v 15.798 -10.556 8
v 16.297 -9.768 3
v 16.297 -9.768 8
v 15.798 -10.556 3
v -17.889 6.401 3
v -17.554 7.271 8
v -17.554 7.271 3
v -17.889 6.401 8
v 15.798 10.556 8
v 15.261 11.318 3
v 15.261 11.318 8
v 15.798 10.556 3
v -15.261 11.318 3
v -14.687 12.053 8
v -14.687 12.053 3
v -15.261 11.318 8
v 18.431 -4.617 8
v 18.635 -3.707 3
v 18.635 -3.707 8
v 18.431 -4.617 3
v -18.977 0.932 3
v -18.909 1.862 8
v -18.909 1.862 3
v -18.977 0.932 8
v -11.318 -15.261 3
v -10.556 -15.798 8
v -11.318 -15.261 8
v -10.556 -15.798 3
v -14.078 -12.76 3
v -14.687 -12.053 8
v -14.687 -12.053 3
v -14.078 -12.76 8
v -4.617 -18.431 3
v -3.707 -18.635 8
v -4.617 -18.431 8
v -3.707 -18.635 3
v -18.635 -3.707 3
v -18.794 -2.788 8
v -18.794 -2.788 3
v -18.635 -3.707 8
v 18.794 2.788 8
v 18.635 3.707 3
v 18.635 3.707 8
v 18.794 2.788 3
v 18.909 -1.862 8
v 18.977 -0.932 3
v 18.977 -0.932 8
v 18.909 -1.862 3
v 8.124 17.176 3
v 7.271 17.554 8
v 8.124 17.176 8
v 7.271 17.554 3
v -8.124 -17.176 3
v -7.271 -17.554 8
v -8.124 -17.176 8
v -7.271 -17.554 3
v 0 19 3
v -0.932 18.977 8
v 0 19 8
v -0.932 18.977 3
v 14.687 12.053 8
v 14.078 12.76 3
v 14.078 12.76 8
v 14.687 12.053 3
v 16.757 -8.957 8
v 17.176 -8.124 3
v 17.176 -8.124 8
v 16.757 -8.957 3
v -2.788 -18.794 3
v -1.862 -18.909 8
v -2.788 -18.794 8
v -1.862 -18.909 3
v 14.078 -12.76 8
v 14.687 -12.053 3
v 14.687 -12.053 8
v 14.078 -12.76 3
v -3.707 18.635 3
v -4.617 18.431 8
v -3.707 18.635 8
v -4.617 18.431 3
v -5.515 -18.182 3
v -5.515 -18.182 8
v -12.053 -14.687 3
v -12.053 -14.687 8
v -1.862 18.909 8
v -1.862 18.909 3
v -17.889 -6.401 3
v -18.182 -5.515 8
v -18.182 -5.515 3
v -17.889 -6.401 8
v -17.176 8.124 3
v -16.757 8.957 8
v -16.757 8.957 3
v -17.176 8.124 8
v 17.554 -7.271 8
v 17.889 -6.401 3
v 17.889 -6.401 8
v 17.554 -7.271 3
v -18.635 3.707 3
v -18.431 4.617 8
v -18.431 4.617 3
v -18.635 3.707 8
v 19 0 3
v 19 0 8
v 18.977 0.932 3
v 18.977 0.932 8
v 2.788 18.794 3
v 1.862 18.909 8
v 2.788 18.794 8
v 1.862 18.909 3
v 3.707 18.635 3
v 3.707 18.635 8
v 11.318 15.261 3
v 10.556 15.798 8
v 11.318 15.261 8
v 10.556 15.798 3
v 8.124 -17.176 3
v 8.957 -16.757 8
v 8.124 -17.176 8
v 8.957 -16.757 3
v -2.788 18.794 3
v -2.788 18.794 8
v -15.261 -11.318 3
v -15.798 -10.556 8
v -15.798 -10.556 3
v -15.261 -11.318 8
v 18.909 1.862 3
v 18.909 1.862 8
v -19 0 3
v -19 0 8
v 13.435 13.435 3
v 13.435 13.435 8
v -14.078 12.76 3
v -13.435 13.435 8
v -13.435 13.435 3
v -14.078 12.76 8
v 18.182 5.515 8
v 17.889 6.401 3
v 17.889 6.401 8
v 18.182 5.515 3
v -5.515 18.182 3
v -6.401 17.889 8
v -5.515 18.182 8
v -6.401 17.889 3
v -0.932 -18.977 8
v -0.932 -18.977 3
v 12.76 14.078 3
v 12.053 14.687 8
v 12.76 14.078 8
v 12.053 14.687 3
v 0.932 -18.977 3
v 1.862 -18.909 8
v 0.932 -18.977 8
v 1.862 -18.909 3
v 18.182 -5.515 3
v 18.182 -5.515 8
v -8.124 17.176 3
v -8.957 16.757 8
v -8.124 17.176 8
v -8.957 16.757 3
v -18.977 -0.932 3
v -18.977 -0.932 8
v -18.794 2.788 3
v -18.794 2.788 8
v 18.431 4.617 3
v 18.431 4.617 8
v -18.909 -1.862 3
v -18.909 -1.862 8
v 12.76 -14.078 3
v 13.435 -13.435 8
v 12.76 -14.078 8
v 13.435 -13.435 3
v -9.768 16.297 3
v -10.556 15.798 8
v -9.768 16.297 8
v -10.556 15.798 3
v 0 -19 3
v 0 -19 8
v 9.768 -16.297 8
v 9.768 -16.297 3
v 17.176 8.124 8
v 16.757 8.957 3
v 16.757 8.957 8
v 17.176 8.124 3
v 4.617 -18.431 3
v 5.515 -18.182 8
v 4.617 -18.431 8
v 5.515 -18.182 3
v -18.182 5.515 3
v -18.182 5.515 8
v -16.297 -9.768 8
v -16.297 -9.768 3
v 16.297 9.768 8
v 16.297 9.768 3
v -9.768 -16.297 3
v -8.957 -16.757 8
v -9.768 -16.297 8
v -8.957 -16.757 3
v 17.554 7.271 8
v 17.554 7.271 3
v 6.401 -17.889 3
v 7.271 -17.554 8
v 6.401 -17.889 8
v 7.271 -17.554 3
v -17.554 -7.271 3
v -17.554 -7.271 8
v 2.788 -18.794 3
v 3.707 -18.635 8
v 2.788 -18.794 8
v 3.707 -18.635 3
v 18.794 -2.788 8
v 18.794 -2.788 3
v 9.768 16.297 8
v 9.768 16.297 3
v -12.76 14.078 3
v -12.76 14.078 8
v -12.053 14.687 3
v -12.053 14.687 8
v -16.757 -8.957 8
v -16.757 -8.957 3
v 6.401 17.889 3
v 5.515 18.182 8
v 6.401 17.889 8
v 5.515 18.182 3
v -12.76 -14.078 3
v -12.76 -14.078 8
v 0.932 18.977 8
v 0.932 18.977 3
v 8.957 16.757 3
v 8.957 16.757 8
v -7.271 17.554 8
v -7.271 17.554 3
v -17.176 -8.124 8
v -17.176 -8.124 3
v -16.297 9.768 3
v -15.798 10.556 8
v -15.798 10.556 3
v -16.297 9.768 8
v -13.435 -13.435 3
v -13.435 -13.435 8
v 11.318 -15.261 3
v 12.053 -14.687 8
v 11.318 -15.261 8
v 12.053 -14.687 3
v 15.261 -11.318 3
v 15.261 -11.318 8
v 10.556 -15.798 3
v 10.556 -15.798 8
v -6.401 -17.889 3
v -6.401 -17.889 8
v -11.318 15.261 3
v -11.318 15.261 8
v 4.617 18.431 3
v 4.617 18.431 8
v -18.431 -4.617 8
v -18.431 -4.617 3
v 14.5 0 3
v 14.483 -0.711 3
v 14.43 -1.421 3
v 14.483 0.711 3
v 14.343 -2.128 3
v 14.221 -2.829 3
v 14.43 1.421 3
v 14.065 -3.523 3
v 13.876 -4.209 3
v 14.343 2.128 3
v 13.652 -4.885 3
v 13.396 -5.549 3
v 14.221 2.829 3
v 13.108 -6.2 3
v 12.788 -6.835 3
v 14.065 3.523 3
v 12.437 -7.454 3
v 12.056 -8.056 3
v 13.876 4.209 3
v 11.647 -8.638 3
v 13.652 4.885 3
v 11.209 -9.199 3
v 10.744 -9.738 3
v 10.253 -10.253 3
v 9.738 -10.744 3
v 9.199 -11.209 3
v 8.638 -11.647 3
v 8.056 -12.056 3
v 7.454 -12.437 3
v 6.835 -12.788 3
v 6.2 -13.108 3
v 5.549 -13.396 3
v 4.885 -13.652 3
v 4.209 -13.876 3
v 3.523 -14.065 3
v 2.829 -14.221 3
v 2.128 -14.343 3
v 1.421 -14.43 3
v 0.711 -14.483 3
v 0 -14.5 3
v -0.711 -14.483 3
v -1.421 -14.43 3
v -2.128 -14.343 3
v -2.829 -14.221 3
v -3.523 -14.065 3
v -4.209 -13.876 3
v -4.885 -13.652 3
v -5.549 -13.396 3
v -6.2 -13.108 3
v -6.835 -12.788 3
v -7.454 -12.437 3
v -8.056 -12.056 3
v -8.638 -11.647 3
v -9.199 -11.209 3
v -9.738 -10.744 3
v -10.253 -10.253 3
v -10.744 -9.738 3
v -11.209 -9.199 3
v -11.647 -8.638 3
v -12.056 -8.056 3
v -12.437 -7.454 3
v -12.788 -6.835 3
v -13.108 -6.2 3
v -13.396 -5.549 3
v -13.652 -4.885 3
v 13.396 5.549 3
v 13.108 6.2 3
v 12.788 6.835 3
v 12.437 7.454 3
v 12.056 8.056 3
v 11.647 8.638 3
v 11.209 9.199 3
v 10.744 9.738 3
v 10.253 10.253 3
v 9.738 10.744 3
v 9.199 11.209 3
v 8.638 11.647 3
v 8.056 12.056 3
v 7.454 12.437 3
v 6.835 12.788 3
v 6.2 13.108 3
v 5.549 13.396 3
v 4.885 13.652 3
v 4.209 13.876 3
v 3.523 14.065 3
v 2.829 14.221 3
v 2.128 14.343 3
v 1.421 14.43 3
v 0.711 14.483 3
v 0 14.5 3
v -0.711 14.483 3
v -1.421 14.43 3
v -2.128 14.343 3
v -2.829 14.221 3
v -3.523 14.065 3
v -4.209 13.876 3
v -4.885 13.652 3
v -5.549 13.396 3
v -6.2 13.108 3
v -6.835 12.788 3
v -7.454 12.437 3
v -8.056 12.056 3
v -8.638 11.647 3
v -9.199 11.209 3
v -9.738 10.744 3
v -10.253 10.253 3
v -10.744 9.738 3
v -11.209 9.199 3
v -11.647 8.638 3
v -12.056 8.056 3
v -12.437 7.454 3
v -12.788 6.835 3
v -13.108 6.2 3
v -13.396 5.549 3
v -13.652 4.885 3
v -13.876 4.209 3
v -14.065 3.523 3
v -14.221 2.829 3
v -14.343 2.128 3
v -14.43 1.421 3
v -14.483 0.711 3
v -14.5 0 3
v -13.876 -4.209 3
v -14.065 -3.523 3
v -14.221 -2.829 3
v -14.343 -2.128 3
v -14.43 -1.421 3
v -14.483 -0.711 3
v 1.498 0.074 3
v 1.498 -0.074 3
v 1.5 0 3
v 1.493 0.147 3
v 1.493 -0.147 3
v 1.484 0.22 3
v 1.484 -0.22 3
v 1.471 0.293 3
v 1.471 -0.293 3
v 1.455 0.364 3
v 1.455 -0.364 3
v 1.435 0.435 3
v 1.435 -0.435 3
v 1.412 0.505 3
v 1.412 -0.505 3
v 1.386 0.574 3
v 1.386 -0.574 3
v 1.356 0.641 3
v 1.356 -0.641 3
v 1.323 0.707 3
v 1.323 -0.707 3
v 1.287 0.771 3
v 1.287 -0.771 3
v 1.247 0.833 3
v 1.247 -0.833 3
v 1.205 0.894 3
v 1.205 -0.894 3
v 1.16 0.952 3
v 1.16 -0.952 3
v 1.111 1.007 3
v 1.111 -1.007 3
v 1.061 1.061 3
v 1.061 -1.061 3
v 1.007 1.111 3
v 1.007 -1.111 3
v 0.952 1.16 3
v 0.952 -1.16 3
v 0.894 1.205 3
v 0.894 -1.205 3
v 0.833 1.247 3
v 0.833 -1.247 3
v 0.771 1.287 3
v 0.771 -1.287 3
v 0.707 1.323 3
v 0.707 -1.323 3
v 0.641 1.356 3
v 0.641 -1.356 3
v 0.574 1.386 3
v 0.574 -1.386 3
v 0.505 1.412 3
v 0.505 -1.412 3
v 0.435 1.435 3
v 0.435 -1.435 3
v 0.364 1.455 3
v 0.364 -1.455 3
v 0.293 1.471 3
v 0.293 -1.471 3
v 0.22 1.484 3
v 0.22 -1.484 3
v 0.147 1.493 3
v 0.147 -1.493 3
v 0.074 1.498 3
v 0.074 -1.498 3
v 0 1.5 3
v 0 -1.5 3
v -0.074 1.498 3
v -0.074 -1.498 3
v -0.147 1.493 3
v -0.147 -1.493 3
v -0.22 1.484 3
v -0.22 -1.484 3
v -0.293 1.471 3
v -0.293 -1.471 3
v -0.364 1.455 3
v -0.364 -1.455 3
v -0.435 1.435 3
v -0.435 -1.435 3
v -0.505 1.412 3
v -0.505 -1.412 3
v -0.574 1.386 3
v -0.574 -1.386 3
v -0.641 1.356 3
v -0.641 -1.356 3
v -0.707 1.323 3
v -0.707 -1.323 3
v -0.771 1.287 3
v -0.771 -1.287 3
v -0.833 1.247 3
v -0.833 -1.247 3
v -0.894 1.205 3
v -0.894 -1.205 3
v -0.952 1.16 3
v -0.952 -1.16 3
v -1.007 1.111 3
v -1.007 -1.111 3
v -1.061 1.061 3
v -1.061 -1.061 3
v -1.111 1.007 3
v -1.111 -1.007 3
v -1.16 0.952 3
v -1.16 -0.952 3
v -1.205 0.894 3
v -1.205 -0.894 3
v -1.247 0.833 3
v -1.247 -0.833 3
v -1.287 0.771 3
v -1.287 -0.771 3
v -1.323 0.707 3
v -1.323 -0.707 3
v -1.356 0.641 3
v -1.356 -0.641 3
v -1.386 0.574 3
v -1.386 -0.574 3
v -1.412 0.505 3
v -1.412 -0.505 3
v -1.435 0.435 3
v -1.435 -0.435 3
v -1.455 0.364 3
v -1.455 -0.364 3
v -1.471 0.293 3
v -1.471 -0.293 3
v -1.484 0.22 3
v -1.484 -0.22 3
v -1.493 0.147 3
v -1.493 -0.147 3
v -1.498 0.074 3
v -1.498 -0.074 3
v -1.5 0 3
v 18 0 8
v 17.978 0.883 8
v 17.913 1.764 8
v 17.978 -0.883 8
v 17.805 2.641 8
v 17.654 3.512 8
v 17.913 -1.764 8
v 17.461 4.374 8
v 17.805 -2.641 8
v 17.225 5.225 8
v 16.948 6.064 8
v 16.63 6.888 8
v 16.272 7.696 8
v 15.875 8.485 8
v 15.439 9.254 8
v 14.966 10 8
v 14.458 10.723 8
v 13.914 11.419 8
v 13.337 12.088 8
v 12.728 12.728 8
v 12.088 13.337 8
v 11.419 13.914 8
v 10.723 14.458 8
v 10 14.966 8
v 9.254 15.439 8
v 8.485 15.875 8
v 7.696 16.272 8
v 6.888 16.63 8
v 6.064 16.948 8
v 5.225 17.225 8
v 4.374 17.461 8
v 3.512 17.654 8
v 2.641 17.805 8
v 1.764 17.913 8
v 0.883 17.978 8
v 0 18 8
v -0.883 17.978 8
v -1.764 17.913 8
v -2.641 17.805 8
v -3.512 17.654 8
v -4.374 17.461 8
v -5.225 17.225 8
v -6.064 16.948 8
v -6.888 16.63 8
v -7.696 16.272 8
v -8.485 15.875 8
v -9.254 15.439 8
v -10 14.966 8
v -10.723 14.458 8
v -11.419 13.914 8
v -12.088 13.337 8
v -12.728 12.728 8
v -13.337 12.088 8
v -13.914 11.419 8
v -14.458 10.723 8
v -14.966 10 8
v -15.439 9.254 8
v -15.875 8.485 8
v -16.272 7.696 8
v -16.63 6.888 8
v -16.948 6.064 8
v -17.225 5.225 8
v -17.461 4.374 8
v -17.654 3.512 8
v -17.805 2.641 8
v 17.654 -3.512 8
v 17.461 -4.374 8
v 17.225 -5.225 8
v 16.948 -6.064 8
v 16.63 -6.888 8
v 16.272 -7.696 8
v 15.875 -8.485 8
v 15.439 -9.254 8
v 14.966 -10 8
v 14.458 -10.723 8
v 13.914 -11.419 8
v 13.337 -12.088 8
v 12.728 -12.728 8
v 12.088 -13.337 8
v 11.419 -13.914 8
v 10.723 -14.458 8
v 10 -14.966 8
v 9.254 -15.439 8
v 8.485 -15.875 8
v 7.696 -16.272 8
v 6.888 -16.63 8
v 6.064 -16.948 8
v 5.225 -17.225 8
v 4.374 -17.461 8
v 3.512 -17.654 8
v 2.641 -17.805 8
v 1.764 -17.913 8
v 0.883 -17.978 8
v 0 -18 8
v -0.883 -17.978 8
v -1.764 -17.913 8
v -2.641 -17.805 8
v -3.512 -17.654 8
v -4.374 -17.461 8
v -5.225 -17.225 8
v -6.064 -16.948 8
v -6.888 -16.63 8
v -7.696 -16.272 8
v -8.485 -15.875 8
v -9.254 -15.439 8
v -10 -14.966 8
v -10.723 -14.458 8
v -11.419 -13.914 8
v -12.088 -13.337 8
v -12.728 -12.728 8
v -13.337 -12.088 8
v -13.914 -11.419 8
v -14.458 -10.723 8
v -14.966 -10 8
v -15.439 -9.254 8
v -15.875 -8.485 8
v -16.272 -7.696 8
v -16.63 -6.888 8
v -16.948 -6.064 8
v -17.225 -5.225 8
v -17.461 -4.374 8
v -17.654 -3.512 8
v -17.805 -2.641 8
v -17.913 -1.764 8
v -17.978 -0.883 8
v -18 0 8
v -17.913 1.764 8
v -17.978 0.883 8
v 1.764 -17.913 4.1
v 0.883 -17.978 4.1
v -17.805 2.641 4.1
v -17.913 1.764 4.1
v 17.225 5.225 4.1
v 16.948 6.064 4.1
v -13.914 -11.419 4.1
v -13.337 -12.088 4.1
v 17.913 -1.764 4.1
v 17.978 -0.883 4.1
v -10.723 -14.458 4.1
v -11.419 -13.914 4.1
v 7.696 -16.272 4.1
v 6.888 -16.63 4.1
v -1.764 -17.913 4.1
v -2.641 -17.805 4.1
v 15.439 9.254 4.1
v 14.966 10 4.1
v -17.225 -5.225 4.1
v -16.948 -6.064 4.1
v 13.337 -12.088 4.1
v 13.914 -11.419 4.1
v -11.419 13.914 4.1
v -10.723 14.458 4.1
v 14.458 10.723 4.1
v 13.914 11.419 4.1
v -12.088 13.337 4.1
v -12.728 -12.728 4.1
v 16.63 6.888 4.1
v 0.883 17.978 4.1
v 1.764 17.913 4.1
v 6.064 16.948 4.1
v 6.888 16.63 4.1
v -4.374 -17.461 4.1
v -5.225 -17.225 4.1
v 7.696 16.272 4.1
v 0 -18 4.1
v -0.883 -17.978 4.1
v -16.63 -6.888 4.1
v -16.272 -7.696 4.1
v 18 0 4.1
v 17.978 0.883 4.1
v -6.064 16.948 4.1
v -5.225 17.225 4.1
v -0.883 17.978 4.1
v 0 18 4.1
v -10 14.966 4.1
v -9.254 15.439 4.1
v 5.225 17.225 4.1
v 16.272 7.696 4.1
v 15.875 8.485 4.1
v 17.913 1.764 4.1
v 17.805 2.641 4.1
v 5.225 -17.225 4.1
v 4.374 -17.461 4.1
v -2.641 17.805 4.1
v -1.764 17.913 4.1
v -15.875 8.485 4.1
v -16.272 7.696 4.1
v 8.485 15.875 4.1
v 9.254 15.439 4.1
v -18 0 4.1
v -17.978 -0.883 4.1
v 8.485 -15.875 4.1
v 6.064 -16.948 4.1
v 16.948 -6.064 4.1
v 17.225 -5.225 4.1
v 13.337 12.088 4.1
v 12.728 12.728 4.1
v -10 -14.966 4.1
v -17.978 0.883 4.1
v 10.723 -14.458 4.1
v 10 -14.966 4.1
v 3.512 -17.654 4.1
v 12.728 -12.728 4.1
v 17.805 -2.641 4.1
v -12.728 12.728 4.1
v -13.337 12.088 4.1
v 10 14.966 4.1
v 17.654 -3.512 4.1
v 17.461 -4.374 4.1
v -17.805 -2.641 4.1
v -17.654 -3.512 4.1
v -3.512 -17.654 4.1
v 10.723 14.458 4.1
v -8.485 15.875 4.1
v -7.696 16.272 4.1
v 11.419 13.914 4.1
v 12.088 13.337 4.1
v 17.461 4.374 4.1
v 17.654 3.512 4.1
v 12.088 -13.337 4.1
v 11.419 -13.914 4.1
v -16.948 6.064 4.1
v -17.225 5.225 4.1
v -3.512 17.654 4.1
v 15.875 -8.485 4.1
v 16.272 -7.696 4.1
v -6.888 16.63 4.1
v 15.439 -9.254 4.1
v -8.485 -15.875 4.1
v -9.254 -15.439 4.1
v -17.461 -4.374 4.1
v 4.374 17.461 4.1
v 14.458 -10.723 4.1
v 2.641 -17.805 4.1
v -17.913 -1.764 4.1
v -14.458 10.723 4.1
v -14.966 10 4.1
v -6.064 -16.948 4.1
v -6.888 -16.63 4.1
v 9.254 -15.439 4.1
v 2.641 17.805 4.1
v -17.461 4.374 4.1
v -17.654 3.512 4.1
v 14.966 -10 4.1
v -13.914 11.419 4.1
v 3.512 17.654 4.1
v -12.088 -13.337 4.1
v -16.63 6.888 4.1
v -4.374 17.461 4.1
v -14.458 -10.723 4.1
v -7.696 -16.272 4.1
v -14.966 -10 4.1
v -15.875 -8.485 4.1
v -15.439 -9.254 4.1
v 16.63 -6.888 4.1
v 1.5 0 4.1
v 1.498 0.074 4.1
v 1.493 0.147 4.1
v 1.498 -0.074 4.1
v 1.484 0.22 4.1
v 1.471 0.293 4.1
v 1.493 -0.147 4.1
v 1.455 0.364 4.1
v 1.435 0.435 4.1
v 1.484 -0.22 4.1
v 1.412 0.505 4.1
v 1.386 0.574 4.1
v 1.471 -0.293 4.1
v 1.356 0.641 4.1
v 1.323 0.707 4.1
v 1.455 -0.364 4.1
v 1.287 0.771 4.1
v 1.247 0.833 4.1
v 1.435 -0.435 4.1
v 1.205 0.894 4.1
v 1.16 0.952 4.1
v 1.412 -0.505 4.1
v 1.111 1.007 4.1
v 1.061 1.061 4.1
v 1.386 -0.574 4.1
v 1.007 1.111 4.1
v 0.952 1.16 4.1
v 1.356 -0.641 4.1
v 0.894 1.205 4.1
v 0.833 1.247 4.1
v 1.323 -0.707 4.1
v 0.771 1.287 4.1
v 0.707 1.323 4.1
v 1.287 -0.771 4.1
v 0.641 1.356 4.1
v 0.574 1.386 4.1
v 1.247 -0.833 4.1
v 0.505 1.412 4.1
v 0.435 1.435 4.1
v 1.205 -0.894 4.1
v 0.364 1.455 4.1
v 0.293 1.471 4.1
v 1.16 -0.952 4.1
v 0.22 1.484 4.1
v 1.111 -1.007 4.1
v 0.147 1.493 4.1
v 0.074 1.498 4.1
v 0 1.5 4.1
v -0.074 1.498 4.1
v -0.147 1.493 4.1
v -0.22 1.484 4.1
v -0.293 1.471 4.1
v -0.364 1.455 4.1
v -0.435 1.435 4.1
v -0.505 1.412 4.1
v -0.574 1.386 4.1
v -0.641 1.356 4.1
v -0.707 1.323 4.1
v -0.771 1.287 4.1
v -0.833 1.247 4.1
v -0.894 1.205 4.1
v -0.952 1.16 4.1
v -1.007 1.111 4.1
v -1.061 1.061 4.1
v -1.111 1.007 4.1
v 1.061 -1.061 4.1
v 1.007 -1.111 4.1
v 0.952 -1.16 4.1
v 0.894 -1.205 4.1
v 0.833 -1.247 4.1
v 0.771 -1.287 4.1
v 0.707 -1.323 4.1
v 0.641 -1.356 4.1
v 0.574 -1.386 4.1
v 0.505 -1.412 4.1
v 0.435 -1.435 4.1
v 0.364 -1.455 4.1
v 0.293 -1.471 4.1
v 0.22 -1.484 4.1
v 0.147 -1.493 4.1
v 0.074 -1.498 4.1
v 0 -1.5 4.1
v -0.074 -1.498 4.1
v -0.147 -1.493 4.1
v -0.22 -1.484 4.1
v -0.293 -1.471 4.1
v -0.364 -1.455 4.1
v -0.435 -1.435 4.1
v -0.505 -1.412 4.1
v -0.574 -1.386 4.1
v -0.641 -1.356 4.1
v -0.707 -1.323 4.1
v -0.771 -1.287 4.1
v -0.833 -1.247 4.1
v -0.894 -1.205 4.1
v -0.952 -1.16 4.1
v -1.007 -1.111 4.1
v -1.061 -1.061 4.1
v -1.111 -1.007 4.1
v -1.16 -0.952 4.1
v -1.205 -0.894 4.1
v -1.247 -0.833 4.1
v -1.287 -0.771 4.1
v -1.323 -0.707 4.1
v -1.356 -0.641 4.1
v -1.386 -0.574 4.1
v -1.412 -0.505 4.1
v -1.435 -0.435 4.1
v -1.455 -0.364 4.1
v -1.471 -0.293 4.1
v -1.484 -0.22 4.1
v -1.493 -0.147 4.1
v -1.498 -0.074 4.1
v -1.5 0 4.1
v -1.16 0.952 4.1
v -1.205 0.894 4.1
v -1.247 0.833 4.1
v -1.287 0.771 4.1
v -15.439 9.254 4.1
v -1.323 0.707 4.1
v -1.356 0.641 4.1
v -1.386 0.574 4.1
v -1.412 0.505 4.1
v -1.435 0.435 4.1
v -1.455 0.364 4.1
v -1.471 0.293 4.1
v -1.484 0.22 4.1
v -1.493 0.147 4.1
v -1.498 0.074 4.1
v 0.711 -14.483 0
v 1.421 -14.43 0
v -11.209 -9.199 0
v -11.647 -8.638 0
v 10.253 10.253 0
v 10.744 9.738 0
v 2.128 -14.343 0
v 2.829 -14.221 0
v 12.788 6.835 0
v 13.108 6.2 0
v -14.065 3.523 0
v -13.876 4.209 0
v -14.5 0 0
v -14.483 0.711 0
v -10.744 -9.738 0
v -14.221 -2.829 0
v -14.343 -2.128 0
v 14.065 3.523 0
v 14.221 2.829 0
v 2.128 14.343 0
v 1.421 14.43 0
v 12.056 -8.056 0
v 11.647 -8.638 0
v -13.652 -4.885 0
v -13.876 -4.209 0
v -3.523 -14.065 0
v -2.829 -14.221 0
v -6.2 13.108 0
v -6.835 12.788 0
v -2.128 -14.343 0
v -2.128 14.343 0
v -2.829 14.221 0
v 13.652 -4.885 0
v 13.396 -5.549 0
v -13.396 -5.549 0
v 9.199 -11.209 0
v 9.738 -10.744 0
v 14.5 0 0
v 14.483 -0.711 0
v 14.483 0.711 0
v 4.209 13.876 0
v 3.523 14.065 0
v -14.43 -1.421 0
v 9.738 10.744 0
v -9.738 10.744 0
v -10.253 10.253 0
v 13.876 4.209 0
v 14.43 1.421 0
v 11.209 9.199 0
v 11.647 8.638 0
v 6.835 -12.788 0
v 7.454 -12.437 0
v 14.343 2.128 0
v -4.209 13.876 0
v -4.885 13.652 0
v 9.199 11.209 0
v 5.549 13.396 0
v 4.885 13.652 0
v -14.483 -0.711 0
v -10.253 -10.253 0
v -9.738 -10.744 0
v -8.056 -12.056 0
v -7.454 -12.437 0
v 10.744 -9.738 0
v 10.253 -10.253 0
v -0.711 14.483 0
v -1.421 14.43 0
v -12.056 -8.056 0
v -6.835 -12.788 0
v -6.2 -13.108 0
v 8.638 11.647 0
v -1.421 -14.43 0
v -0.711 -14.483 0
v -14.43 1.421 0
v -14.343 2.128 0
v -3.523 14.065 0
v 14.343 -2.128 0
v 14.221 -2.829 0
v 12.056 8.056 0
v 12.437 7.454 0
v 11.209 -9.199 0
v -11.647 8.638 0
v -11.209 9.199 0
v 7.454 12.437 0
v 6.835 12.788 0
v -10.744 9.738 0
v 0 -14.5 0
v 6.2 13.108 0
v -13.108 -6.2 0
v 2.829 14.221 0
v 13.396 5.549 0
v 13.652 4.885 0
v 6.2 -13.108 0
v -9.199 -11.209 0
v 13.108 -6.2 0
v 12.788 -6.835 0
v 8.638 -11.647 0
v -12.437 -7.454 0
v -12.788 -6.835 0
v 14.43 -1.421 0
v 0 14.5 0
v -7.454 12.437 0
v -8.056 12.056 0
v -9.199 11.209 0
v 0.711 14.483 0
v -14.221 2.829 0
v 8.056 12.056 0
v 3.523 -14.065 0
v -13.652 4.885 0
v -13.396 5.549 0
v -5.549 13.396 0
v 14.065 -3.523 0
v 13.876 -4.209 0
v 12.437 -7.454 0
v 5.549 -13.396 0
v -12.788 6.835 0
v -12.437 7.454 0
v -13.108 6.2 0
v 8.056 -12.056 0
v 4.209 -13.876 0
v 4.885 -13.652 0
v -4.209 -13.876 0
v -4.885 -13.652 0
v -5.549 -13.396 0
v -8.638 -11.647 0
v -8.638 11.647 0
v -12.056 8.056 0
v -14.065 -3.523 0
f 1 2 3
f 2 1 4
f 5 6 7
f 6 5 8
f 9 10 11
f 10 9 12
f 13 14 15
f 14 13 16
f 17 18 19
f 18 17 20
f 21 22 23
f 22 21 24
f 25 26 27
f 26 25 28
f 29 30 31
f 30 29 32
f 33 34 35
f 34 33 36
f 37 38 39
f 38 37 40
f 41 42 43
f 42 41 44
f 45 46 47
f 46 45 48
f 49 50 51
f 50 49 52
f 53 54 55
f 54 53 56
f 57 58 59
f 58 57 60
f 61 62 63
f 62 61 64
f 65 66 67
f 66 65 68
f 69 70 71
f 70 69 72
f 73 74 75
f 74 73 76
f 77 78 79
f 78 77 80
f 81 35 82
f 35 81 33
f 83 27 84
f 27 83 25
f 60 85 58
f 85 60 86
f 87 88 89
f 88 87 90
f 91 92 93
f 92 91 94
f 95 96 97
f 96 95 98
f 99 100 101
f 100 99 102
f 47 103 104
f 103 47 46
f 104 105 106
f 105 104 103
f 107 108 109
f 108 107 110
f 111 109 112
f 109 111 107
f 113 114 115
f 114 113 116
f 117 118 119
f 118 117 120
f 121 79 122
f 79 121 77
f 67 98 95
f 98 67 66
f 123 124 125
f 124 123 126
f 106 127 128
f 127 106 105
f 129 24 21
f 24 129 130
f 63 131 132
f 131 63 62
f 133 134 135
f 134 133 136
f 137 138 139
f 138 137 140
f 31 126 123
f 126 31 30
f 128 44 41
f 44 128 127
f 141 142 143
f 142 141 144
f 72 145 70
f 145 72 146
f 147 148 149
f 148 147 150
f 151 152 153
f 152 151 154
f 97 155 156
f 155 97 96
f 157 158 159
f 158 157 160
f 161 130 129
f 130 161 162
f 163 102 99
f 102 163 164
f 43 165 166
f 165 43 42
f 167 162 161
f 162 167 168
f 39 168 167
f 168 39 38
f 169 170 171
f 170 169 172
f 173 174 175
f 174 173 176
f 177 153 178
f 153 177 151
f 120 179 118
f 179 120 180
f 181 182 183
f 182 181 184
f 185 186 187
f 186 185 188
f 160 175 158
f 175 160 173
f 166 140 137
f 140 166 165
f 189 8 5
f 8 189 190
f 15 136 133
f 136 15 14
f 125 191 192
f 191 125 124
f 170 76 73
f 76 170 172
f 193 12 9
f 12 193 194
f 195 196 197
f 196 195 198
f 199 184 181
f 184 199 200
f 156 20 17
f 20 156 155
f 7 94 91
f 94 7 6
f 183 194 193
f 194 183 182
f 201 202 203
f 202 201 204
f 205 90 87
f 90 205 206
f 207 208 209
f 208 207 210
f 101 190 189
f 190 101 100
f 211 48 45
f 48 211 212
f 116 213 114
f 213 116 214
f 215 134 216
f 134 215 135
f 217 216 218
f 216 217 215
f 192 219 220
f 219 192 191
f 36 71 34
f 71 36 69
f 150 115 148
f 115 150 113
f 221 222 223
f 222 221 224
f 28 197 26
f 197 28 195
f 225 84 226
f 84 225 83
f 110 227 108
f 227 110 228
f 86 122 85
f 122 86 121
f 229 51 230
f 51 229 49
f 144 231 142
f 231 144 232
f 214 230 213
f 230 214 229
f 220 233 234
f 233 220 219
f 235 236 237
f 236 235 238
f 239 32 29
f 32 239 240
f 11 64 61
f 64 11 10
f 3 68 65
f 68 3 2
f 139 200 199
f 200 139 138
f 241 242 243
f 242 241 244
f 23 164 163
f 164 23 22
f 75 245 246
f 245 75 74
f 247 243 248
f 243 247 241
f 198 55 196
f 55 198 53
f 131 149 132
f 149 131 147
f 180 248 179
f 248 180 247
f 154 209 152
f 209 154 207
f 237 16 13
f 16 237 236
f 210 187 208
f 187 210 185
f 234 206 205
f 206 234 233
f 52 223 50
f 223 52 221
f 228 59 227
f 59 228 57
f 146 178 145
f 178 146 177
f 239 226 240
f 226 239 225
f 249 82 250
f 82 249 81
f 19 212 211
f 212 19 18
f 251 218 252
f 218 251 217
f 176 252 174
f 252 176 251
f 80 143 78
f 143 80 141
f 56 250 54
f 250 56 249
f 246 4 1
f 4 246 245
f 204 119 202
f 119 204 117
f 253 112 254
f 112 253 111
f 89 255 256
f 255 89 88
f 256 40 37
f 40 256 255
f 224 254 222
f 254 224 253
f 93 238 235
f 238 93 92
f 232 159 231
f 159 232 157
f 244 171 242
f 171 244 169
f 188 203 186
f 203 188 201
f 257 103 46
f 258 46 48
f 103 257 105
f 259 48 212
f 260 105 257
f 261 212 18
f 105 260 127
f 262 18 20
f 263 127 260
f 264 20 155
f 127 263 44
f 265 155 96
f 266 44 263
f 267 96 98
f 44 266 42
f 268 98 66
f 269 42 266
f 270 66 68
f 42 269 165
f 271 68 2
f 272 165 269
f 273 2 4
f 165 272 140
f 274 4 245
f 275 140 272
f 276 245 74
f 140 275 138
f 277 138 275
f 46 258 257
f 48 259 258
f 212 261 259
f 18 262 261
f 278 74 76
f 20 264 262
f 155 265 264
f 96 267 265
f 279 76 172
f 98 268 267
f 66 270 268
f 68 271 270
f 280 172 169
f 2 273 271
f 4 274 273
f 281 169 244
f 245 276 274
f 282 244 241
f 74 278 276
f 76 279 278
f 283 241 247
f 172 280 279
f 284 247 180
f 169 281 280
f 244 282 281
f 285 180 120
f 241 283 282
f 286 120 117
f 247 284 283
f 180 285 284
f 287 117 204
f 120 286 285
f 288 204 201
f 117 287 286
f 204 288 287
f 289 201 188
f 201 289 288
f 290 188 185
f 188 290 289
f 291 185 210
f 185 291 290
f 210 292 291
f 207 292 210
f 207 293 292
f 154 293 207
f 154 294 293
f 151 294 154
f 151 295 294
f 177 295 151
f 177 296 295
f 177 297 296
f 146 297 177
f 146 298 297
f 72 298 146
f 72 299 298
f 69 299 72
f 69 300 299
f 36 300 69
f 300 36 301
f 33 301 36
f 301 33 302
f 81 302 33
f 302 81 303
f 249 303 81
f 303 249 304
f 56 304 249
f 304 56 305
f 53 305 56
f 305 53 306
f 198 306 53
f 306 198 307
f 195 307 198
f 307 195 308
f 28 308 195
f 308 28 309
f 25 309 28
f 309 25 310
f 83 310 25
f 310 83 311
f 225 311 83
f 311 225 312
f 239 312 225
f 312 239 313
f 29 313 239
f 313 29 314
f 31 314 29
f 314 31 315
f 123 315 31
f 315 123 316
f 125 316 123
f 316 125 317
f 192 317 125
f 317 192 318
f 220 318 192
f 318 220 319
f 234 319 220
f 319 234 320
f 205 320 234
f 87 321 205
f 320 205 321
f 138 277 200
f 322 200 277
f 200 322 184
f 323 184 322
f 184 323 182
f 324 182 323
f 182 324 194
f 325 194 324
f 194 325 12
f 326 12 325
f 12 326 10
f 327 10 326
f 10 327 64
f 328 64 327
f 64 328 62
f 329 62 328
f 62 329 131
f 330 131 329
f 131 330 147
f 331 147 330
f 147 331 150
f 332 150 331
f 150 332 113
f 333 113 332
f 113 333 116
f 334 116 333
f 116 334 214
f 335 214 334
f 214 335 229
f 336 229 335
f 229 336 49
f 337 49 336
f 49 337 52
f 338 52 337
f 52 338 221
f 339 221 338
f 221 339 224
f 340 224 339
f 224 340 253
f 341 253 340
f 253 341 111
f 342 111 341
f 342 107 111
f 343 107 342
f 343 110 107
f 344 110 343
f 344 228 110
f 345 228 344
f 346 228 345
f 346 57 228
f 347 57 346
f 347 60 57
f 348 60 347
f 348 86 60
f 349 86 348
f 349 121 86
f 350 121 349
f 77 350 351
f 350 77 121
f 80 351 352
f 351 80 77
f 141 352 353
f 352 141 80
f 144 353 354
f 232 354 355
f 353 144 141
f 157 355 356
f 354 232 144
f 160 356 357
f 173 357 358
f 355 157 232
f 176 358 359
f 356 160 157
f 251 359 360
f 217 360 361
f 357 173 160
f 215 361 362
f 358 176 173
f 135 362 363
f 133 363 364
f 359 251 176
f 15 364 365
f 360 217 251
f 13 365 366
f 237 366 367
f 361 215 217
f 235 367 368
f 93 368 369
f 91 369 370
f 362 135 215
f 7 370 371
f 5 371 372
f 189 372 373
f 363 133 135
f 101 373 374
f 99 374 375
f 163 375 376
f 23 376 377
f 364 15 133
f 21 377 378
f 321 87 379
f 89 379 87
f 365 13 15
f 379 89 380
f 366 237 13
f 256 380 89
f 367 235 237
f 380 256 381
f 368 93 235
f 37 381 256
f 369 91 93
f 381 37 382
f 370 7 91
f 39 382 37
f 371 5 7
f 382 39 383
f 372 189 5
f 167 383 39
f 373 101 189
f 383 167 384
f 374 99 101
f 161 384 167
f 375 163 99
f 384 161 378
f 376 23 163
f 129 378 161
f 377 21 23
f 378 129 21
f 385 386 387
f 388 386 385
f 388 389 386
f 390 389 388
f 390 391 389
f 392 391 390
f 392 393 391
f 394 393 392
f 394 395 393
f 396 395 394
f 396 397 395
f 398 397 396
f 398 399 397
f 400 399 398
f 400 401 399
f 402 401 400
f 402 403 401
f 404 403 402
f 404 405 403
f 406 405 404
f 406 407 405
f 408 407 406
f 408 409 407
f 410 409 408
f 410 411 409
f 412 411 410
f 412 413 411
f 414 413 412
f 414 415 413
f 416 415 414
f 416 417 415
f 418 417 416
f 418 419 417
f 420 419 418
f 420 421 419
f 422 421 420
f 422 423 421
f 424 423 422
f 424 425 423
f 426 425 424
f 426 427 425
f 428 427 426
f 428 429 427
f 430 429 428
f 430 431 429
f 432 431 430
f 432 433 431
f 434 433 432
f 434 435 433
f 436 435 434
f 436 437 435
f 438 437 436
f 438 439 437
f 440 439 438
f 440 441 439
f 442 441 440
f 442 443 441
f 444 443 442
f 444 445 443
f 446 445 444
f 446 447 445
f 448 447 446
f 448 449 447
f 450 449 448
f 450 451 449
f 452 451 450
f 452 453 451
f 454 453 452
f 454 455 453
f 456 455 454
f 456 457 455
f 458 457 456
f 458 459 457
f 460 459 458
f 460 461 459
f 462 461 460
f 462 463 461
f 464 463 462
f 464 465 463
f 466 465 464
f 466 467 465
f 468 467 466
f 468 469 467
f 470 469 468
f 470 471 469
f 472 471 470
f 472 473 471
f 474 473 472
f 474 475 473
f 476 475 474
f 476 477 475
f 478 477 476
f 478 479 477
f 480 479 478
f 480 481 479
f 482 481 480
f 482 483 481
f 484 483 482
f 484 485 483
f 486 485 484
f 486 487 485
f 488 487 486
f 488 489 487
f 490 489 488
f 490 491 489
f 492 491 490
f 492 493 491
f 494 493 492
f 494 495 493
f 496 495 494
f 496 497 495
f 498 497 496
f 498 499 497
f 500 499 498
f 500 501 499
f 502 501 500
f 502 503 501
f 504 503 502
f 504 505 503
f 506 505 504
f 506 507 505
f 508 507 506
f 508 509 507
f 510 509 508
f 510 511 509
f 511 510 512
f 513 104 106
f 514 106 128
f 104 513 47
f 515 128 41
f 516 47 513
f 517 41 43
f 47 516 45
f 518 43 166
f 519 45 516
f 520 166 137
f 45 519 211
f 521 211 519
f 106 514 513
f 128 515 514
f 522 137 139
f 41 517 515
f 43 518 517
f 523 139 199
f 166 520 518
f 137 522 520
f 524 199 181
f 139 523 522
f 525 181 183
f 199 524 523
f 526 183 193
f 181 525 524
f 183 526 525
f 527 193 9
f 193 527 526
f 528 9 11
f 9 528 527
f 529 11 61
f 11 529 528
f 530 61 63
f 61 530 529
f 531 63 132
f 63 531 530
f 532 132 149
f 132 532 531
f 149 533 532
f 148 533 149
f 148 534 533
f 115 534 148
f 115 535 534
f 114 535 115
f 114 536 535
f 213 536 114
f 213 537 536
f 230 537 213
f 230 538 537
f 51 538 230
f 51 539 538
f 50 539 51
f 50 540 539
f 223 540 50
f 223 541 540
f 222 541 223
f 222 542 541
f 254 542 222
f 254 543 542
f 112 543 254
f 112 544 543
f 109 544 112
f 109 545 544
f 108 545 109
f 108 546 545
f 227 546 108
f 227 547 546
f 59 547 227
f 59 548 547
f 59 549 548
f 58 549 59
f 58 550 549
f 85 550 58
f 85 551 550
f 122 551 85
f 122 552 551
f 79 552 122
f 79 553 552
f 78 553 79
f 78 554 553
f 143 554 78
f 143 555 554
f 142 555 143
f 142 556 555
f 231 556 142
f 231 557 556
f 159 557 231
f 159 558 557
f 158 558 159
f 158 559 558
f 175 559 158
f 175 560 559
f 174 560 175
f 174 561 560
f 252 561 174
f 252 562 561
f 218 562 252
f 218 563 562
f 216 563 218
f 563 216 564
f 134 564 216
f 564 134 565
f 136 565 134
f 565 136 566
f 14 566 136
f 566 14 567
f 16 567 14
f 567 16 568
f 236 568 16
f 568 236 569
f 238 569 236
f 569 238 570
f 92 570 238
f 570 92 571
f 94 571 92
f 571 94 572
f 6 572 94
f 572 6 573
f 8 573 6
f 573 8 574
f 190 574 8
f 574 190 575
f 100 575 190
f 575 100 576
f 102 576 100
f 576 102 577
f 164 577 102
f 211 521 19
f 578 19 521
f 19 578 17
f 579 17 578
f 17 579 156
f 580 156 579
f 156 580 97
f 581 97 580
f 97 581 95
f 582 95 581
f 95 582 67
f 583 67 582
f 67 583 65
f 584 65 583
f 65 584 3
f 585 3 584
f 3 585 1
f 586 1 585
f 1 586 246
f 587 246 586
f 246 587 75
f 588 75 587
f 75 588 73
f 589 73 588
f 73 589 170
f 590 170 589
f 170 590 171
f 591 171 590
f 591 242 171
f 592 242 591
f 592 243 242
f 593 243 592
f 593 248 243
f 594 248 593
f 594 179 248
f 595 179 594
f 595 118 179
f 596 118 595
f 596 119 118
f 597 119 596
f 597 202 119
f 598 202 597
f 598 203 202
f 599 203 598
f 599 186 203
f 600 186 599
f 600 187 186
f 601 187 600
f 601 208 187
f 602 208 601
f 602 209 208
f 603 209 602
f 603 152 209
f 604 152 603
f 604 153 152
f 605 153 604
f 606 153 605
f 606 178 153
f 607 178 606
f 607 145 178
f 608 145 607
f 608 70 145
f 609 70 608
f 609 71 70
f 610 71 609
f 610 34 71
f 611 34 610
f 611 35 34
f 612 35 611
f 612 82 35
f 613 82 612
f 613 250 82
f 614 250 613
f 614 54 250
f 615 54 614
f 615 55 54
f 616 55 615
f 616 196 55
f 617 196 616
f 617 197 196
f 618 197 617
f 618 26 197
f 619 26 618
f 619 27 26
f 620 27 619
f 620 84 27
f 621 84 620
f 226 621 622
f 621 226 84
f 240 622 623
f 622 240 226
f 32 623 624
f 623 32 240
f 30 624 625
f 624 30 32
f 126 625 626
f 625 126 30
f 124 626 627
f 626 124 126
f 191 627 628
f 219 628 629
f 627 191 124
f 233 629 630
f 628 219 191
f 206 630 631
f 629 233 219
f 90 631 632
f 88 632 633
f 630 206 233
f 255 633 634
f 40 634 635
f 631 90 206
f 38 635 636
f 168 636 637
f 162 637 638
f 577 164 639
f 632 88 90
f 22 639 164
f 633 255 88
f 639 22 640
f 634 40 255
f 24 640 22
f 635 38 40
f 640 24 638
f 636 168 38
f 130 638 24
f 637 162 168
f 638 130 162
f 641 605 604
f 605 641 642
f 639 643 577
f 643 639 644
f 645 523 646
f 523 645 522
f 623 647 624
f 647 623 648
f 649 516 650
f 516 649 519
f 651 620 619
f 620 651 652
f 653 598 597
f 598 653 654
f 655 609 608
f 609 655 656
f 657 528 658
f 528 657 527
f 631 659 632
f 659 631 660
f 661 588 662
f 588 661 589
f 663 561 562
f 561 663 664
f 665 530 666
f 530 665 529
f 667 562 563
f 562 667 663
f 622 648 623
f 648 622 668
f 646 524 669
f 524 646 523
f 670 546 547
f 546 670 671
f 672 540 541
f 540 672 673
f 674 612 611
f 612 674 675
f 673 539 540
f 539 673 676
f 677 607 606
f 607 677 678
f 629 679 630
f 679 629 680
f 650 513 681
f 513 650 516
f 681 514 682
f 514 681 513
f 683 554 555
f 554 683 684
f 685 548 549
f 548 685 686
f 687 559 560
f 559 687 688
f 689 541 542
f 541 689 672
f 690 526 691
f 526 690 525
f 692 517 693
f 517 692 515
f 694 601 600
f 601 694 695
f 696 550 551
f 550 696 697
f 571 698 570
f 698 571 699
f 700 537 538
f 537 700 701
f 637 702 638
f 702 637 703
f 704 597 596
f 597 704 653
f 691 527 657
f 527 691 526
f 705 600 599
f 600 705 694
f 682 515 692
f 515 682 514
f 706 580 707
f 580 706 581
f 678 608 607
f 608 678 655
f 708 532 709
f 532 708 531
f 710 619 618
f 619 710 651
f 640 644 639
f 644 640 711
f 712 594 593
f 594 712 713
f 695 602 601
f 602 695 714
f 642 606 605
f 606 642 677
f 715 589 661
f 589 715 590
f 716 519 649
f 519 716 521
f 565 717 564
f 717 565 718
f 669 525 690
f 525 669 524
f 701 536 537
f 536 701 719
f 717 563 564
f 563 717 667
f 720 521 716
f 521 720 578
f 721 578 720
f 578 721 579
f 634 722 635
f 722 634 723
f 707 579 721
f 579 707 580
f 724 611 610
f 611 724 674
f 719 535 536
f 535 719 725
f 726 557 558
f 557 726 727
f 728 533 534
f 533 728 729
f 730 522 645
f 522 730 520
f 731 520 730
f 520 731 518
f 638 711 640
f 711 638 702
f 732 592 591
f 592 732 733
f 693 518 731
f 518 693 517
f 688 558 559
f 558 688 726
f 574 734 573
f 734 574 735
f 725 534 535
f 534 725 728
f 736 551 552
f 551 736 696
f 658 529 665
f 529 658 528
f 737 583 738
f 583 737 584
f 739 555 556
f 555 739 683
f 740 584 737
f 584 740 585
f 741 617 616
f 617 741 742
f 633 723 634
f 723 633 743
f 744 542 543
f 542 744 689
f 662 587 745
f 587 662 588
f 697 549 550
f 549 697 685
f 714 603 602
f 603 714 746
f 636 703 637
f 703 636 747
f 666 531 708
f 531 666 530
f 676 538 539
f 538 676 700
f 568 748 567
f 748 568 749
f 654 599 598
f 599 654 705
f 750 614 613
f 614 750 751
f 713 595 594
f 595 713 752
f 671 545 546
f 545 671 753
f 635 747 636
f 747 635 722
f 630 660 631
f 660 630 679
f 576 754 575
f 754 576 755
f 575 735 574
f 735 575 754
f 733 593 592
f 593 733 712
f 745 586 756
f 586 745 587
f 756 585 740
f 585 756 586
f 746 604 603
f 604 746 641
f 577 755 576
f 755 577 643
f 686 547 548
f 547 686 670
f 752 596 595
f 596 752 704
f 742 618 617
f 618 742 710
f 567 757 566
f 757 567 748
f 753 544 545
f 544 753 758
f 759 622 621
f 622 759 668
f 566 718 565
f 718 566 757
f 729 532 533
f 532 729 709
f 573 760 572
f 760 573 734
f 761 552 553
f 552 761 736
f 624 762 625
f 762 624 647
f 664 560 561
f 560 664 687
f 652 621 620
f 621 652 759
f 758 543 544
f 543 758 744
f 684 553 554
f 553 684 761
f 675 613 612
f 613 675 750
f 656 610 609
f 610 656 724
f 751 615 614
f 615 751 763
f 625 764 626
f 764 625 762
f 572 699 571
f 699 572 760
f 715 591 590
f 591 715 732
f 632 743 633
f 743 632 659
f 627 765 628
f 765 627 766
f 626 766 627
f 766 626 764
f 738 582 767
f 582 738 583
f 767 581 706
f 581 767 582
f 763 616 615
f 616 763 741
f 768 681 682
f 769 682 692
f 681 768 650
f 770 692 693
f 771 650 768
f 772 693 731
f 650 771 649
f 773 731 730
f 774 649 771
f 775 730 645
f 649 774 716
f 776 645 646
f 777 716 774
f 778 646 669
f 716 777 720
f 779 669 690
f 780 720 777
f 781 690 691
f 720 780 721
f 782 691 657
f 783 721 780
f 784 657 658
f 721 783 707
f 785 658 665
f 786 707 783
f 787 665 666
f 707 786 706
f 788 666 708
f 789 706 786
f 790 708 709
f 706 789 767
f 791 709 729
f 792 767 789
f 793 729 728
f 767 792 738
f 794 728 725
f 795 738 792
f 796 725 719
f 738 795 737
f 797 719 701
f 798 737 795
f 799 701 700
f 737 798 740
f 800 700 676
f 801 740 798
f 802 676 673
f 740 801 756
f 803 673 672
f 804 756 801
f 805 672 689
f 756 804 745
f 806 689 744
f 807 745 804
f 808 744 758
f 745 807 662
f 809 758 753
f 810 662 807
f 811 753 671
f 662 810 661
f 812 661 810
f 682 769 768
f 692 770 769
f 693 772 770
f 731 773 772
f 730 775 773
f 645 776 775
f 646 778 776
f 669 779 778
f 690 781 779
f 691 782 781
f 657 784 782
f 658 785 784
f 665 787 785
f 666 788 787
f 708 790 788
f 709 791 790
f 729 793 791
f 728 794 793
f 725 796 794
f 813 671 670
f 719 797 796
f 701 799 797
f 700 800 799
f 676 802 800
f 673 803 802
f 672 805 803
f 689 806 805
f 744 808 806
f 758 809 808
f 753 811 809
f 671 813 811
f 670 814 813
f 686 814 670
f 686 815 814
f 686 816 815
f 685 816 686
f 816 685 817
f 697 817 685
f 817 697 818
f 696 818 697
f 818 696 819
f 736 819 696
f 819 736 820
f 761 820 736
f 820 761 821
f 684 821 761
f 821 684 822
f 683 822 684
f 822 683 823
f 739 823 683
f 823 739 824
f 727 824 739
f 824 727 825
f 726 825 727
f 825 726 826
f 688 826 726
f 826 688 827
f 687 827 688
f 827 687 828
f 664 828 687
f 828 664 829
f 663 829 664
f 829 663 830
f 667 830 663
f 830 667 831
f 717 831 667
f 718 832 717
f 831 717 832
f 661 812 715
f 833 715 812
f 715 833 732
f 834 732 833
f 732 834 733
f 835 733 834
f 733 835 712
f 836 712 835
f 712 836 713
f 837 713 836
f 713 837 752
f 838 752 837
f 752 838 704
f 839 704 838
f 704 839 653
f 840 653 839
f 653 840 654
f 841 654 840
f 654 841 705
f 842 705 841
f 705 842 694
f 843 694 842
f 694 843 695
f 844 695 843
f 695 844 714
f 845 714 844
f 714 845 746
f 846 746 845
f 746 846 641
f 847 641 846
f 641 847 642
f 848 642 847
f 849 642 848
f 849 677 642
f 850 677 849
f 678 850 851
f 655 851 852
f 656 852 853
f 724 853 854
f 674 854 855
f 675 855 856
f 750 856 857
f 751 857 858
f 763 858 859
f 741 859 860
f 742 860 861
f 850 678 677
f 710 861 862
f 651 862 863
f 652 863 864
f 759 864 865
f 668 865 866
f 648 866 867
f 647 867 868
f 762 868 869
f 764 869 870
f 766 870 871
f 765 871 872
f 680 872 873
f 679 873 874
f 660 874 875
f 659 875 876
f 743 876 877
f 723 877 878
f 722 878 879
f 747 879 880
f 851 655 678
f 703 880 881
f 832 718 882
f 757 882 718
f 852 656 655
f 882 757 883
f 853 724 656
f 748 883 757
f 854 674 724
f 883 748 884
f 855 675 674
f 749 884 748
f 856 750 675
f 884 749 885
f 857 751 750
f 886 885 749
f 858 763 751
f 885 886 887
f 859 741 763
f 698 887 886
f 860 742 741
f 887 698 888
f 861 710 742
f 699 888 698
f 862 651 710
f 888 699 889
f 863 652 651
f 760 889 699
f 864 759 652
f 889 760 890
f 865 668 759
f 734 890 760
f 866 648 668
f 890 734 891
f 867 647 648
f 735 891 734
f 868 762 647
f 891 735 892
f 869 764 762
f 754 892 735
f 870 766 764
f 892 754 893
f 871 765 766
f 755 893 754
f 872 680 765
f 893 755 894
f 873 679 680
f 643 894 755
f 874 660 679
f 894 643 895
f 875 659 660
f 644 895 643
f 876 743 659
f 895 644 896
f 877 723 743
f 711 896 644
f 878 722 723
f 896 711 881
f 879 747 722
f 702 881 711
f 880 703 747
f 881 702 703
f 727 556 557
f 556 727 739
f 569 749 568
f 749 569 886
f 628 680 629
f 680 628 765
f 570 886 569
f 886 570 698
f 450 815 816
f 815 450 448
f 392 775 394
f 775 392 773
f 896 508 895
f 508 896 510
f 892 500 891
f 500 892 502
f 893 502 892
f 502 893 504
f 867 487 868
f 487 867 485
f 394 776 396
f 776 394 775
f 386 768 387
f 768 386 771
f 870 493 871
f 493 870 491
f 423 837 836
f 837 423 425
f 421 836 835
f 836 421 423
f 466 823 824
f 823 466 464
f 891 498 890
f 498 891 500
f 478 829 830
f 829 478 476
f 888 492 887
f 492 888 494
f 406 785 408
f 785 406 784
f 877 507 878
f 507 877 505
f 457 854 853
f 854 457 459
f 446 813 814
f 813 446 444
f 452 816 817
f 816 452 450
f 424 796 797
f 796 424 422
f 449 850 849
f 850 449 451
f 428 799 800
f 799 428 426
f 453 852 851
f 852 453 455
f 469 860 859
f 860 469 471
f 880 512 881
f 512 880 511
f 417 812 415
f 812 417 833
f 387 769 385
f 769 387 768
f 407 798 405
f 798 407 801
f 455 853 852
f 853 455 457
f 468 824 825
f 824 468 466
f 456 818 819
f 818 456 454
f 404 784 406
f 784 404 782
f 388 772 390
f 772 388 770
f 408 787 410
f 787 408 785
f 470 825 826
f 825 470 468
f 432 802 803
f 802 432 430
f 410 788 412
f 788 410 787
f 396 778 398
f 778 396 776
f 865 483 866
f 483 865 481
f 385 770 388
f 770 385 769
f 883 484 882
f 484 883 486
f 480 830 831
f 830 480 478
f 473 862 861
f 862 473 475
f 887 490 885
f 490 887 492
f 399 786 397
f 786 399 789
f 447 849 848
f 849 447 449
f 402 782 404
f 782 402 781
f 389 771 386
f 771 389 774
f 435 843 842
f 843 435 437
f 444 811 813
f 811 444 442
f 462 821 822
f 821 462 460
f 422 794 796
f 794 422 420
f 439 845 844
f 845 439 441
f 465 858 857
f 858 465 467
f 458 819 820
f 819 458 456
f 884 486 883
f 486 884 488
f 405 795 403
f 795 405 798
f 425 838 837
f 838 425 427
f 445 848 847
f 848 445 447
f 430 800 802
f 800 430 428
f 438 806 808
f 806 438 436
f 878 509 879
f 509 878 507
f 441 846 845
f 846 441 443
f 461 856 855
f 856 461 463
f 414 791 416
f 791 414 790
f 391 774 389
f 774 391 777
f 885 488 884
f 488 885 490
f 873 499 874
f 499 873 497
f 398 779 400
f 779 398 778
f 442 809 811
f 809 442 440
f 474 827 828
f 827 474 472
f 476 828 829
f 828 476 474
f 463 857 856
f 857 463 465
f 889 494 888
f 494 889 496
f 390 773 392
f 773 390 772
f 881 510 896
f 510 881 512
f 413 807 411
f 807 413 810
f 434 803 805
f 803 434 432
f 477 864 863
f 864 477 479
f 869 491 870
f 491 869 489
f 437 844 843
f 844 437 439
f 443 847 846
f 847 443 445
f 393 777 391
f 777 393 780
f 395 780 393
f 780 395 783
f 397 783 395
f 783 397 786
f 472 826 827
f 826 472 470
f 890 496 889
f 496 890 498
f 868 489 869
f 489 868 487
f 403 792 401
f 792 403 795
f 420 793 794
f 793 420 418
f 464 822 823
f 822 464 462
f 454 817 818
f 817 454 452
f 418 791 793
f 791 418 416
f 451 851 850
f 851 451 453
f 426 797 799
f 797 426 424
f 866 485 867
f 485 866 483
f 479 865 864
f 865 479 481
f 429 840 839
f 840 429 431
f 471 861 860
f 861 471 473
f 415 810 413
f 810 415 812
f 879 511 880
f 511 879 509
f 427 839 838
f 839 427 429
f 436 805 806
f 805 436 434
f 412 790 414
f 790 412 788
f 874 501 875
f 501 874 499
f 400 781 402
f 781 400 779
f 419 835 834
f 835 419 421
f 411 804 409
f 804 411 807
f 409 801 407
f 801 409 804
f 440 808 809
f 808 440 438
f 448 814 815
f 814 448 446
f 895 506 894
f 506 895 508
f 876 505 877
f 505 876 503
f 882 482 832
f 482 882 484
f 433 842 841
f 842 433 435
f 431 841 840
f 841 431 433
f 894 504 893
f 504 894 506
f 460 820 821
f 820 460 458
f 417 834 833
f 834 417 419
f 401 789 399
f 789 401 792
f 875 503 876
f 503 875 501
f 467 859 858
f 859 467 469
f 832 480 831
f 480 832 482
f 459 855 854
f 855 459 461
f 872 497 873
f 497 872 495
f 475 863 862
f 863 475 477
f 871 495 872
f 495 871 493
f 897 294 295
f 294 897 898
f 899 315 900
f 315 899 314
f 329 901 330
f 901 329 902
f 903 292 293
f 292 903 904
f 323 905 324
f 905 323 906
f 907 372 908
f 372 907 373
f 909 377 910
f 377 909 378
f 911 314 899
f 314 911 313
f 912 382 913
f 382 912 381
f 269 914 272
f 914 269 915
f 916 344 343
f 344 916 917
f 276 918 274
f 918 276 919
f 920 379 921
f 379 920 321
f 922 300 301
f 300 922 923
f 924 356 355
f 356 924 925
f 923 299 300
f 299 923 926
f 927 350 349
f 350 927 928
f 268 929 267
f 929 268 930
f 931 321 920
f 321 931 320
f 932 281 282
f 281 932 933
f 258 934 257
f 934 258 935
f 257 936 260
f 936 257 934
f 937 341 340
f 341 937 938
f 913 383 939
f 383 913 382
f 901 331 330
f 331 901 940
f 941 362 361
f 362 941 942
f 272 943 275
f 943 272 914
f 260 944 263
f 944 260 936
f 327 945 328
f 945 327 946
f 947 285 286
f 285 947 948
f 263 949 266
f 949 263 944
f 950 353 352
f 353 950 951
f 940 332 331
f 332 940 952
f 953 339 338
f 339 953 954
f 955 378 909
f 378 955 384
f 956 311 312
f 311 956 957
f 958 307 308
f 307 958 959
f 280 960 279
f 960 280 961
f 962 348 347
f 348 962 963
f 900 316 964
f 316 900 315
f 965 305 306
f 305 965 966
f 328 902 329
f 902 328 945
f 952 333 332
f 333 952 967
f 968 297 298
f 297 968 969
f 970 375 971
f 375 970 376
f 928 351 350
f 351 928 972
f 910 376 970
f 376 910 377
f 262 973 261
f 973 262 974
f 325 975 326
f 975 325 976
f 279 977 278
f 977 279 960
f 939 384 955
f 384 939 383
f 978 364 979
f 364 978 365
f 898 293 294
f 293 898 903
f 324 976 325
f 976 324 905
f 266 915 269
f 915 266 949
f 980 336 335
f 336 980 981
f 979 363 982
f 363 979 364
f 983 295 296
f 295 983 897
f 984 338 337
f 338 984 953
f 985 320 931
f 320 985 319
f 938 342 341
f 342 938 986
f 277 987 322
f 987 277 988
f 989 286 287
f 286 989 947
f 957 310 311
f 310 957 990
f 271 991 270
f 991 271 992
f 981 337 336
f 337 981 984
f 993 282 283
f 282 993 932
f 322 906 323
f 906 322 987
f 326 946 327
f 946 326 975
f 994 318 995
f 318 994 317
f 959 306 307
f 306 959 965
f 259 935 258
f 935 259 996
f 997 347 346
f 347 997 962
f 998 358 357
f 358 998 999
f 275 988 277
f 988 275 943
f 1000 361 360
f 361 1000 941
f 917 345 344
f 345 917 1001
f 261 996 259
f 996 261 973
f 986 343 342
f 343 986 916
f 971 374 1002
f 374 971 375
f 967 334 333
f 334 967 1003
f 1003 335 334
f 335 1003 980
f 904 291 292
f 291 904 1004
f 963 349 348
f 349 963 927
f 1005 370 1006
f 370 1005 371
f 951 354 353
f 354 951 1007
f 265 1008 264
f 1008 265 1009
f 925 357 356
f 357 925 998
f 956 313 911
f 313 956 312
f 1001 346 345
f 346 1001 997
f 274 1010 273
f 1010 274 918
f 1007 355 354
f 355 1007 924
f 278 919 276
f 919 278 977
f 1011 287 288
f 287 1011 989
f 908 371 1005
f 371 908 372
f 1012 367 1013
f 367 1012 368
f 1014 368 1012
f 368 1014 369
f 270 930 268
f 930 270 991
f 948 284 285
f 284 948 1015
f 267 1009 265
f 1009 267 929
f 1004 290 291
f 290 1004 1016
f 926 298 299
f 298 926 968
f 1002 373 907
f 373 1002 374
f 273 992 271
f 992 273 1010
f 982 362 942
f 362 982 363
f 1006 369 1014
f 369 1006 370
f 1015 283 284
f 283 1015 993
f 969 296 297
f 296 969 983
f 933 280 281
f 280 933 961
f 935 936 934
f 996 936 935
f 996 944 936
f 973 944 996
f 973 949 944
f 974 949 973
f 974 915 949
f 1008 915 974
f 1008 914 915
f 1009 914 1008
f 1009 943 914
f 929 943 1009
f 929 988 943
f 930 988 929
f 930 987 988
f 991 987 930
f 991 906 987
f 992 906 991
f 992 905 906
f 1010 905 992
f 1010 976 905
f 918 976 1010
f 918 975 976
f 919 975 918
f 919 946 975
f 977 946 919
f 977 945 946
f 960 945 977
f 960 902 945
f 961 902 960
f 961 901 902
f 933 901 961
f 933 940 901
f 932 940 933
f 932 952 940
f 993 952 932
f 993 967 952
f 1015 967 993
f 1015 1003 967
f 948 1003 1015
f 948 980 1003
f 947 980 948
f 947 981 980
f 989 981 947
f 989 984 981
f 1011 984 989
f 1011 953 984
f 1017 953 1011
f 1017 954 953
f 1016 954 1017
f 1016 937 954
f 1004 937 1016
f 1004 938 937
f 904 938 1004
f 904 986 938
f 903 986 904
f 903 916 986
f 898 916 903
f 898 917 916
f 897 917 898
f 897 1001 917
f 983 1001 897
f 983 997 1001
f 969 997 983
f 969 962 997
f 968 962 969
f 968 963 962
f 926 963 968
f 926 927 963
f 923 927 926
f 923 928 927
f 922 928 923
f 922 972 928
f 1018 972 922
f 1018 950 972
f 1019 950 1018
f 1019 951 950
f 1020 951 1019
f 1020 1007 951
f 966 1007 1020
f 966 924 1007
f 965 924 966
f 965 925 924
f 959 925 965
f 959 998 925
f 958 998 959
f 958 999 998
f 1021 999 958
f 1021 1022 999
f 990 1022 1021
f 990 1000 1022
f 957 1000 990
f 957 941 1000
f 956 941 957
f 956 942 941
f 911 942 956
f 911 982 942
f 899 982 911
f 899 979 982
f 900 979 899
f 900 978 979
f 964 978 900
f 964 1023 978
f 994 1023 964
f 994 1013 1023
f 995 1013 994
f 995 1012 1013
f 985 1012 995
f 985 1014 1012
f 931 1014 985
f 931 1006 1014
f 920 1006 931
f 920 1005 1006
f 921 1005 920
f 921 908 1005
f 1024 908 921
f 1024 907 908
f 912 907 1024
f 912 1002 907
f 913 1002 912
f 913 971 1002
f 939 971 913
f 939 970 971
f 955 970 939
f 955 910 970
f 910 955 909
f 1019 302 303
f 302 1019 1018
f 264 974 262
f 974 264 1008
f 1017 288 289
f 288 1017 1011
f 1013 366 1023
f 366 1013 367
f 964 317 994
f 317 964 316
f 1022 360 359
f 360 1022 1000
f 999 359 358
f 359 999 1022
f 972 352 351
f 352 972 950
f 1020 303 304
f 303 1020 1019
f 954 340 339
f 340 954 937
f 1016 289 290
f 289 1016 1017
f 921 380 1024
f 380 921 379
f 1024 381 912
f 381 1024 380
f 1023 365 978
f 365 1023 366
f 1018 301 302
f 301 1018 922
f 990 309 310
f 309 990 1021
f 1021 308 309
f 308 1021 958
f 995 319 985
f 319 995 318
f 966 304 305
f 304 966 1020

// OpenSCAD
cylinder(d=29, h=3, $fn=128);
difference() {
translate([0,0,3])
cylinder(d=38, h=5, $fn=128);
translate([0,0,4.1])
cylinder(d=36, h=4, $fn=128);
translate([0,0,2])
cylinder(d=3, h=3, $fn=128);
}
